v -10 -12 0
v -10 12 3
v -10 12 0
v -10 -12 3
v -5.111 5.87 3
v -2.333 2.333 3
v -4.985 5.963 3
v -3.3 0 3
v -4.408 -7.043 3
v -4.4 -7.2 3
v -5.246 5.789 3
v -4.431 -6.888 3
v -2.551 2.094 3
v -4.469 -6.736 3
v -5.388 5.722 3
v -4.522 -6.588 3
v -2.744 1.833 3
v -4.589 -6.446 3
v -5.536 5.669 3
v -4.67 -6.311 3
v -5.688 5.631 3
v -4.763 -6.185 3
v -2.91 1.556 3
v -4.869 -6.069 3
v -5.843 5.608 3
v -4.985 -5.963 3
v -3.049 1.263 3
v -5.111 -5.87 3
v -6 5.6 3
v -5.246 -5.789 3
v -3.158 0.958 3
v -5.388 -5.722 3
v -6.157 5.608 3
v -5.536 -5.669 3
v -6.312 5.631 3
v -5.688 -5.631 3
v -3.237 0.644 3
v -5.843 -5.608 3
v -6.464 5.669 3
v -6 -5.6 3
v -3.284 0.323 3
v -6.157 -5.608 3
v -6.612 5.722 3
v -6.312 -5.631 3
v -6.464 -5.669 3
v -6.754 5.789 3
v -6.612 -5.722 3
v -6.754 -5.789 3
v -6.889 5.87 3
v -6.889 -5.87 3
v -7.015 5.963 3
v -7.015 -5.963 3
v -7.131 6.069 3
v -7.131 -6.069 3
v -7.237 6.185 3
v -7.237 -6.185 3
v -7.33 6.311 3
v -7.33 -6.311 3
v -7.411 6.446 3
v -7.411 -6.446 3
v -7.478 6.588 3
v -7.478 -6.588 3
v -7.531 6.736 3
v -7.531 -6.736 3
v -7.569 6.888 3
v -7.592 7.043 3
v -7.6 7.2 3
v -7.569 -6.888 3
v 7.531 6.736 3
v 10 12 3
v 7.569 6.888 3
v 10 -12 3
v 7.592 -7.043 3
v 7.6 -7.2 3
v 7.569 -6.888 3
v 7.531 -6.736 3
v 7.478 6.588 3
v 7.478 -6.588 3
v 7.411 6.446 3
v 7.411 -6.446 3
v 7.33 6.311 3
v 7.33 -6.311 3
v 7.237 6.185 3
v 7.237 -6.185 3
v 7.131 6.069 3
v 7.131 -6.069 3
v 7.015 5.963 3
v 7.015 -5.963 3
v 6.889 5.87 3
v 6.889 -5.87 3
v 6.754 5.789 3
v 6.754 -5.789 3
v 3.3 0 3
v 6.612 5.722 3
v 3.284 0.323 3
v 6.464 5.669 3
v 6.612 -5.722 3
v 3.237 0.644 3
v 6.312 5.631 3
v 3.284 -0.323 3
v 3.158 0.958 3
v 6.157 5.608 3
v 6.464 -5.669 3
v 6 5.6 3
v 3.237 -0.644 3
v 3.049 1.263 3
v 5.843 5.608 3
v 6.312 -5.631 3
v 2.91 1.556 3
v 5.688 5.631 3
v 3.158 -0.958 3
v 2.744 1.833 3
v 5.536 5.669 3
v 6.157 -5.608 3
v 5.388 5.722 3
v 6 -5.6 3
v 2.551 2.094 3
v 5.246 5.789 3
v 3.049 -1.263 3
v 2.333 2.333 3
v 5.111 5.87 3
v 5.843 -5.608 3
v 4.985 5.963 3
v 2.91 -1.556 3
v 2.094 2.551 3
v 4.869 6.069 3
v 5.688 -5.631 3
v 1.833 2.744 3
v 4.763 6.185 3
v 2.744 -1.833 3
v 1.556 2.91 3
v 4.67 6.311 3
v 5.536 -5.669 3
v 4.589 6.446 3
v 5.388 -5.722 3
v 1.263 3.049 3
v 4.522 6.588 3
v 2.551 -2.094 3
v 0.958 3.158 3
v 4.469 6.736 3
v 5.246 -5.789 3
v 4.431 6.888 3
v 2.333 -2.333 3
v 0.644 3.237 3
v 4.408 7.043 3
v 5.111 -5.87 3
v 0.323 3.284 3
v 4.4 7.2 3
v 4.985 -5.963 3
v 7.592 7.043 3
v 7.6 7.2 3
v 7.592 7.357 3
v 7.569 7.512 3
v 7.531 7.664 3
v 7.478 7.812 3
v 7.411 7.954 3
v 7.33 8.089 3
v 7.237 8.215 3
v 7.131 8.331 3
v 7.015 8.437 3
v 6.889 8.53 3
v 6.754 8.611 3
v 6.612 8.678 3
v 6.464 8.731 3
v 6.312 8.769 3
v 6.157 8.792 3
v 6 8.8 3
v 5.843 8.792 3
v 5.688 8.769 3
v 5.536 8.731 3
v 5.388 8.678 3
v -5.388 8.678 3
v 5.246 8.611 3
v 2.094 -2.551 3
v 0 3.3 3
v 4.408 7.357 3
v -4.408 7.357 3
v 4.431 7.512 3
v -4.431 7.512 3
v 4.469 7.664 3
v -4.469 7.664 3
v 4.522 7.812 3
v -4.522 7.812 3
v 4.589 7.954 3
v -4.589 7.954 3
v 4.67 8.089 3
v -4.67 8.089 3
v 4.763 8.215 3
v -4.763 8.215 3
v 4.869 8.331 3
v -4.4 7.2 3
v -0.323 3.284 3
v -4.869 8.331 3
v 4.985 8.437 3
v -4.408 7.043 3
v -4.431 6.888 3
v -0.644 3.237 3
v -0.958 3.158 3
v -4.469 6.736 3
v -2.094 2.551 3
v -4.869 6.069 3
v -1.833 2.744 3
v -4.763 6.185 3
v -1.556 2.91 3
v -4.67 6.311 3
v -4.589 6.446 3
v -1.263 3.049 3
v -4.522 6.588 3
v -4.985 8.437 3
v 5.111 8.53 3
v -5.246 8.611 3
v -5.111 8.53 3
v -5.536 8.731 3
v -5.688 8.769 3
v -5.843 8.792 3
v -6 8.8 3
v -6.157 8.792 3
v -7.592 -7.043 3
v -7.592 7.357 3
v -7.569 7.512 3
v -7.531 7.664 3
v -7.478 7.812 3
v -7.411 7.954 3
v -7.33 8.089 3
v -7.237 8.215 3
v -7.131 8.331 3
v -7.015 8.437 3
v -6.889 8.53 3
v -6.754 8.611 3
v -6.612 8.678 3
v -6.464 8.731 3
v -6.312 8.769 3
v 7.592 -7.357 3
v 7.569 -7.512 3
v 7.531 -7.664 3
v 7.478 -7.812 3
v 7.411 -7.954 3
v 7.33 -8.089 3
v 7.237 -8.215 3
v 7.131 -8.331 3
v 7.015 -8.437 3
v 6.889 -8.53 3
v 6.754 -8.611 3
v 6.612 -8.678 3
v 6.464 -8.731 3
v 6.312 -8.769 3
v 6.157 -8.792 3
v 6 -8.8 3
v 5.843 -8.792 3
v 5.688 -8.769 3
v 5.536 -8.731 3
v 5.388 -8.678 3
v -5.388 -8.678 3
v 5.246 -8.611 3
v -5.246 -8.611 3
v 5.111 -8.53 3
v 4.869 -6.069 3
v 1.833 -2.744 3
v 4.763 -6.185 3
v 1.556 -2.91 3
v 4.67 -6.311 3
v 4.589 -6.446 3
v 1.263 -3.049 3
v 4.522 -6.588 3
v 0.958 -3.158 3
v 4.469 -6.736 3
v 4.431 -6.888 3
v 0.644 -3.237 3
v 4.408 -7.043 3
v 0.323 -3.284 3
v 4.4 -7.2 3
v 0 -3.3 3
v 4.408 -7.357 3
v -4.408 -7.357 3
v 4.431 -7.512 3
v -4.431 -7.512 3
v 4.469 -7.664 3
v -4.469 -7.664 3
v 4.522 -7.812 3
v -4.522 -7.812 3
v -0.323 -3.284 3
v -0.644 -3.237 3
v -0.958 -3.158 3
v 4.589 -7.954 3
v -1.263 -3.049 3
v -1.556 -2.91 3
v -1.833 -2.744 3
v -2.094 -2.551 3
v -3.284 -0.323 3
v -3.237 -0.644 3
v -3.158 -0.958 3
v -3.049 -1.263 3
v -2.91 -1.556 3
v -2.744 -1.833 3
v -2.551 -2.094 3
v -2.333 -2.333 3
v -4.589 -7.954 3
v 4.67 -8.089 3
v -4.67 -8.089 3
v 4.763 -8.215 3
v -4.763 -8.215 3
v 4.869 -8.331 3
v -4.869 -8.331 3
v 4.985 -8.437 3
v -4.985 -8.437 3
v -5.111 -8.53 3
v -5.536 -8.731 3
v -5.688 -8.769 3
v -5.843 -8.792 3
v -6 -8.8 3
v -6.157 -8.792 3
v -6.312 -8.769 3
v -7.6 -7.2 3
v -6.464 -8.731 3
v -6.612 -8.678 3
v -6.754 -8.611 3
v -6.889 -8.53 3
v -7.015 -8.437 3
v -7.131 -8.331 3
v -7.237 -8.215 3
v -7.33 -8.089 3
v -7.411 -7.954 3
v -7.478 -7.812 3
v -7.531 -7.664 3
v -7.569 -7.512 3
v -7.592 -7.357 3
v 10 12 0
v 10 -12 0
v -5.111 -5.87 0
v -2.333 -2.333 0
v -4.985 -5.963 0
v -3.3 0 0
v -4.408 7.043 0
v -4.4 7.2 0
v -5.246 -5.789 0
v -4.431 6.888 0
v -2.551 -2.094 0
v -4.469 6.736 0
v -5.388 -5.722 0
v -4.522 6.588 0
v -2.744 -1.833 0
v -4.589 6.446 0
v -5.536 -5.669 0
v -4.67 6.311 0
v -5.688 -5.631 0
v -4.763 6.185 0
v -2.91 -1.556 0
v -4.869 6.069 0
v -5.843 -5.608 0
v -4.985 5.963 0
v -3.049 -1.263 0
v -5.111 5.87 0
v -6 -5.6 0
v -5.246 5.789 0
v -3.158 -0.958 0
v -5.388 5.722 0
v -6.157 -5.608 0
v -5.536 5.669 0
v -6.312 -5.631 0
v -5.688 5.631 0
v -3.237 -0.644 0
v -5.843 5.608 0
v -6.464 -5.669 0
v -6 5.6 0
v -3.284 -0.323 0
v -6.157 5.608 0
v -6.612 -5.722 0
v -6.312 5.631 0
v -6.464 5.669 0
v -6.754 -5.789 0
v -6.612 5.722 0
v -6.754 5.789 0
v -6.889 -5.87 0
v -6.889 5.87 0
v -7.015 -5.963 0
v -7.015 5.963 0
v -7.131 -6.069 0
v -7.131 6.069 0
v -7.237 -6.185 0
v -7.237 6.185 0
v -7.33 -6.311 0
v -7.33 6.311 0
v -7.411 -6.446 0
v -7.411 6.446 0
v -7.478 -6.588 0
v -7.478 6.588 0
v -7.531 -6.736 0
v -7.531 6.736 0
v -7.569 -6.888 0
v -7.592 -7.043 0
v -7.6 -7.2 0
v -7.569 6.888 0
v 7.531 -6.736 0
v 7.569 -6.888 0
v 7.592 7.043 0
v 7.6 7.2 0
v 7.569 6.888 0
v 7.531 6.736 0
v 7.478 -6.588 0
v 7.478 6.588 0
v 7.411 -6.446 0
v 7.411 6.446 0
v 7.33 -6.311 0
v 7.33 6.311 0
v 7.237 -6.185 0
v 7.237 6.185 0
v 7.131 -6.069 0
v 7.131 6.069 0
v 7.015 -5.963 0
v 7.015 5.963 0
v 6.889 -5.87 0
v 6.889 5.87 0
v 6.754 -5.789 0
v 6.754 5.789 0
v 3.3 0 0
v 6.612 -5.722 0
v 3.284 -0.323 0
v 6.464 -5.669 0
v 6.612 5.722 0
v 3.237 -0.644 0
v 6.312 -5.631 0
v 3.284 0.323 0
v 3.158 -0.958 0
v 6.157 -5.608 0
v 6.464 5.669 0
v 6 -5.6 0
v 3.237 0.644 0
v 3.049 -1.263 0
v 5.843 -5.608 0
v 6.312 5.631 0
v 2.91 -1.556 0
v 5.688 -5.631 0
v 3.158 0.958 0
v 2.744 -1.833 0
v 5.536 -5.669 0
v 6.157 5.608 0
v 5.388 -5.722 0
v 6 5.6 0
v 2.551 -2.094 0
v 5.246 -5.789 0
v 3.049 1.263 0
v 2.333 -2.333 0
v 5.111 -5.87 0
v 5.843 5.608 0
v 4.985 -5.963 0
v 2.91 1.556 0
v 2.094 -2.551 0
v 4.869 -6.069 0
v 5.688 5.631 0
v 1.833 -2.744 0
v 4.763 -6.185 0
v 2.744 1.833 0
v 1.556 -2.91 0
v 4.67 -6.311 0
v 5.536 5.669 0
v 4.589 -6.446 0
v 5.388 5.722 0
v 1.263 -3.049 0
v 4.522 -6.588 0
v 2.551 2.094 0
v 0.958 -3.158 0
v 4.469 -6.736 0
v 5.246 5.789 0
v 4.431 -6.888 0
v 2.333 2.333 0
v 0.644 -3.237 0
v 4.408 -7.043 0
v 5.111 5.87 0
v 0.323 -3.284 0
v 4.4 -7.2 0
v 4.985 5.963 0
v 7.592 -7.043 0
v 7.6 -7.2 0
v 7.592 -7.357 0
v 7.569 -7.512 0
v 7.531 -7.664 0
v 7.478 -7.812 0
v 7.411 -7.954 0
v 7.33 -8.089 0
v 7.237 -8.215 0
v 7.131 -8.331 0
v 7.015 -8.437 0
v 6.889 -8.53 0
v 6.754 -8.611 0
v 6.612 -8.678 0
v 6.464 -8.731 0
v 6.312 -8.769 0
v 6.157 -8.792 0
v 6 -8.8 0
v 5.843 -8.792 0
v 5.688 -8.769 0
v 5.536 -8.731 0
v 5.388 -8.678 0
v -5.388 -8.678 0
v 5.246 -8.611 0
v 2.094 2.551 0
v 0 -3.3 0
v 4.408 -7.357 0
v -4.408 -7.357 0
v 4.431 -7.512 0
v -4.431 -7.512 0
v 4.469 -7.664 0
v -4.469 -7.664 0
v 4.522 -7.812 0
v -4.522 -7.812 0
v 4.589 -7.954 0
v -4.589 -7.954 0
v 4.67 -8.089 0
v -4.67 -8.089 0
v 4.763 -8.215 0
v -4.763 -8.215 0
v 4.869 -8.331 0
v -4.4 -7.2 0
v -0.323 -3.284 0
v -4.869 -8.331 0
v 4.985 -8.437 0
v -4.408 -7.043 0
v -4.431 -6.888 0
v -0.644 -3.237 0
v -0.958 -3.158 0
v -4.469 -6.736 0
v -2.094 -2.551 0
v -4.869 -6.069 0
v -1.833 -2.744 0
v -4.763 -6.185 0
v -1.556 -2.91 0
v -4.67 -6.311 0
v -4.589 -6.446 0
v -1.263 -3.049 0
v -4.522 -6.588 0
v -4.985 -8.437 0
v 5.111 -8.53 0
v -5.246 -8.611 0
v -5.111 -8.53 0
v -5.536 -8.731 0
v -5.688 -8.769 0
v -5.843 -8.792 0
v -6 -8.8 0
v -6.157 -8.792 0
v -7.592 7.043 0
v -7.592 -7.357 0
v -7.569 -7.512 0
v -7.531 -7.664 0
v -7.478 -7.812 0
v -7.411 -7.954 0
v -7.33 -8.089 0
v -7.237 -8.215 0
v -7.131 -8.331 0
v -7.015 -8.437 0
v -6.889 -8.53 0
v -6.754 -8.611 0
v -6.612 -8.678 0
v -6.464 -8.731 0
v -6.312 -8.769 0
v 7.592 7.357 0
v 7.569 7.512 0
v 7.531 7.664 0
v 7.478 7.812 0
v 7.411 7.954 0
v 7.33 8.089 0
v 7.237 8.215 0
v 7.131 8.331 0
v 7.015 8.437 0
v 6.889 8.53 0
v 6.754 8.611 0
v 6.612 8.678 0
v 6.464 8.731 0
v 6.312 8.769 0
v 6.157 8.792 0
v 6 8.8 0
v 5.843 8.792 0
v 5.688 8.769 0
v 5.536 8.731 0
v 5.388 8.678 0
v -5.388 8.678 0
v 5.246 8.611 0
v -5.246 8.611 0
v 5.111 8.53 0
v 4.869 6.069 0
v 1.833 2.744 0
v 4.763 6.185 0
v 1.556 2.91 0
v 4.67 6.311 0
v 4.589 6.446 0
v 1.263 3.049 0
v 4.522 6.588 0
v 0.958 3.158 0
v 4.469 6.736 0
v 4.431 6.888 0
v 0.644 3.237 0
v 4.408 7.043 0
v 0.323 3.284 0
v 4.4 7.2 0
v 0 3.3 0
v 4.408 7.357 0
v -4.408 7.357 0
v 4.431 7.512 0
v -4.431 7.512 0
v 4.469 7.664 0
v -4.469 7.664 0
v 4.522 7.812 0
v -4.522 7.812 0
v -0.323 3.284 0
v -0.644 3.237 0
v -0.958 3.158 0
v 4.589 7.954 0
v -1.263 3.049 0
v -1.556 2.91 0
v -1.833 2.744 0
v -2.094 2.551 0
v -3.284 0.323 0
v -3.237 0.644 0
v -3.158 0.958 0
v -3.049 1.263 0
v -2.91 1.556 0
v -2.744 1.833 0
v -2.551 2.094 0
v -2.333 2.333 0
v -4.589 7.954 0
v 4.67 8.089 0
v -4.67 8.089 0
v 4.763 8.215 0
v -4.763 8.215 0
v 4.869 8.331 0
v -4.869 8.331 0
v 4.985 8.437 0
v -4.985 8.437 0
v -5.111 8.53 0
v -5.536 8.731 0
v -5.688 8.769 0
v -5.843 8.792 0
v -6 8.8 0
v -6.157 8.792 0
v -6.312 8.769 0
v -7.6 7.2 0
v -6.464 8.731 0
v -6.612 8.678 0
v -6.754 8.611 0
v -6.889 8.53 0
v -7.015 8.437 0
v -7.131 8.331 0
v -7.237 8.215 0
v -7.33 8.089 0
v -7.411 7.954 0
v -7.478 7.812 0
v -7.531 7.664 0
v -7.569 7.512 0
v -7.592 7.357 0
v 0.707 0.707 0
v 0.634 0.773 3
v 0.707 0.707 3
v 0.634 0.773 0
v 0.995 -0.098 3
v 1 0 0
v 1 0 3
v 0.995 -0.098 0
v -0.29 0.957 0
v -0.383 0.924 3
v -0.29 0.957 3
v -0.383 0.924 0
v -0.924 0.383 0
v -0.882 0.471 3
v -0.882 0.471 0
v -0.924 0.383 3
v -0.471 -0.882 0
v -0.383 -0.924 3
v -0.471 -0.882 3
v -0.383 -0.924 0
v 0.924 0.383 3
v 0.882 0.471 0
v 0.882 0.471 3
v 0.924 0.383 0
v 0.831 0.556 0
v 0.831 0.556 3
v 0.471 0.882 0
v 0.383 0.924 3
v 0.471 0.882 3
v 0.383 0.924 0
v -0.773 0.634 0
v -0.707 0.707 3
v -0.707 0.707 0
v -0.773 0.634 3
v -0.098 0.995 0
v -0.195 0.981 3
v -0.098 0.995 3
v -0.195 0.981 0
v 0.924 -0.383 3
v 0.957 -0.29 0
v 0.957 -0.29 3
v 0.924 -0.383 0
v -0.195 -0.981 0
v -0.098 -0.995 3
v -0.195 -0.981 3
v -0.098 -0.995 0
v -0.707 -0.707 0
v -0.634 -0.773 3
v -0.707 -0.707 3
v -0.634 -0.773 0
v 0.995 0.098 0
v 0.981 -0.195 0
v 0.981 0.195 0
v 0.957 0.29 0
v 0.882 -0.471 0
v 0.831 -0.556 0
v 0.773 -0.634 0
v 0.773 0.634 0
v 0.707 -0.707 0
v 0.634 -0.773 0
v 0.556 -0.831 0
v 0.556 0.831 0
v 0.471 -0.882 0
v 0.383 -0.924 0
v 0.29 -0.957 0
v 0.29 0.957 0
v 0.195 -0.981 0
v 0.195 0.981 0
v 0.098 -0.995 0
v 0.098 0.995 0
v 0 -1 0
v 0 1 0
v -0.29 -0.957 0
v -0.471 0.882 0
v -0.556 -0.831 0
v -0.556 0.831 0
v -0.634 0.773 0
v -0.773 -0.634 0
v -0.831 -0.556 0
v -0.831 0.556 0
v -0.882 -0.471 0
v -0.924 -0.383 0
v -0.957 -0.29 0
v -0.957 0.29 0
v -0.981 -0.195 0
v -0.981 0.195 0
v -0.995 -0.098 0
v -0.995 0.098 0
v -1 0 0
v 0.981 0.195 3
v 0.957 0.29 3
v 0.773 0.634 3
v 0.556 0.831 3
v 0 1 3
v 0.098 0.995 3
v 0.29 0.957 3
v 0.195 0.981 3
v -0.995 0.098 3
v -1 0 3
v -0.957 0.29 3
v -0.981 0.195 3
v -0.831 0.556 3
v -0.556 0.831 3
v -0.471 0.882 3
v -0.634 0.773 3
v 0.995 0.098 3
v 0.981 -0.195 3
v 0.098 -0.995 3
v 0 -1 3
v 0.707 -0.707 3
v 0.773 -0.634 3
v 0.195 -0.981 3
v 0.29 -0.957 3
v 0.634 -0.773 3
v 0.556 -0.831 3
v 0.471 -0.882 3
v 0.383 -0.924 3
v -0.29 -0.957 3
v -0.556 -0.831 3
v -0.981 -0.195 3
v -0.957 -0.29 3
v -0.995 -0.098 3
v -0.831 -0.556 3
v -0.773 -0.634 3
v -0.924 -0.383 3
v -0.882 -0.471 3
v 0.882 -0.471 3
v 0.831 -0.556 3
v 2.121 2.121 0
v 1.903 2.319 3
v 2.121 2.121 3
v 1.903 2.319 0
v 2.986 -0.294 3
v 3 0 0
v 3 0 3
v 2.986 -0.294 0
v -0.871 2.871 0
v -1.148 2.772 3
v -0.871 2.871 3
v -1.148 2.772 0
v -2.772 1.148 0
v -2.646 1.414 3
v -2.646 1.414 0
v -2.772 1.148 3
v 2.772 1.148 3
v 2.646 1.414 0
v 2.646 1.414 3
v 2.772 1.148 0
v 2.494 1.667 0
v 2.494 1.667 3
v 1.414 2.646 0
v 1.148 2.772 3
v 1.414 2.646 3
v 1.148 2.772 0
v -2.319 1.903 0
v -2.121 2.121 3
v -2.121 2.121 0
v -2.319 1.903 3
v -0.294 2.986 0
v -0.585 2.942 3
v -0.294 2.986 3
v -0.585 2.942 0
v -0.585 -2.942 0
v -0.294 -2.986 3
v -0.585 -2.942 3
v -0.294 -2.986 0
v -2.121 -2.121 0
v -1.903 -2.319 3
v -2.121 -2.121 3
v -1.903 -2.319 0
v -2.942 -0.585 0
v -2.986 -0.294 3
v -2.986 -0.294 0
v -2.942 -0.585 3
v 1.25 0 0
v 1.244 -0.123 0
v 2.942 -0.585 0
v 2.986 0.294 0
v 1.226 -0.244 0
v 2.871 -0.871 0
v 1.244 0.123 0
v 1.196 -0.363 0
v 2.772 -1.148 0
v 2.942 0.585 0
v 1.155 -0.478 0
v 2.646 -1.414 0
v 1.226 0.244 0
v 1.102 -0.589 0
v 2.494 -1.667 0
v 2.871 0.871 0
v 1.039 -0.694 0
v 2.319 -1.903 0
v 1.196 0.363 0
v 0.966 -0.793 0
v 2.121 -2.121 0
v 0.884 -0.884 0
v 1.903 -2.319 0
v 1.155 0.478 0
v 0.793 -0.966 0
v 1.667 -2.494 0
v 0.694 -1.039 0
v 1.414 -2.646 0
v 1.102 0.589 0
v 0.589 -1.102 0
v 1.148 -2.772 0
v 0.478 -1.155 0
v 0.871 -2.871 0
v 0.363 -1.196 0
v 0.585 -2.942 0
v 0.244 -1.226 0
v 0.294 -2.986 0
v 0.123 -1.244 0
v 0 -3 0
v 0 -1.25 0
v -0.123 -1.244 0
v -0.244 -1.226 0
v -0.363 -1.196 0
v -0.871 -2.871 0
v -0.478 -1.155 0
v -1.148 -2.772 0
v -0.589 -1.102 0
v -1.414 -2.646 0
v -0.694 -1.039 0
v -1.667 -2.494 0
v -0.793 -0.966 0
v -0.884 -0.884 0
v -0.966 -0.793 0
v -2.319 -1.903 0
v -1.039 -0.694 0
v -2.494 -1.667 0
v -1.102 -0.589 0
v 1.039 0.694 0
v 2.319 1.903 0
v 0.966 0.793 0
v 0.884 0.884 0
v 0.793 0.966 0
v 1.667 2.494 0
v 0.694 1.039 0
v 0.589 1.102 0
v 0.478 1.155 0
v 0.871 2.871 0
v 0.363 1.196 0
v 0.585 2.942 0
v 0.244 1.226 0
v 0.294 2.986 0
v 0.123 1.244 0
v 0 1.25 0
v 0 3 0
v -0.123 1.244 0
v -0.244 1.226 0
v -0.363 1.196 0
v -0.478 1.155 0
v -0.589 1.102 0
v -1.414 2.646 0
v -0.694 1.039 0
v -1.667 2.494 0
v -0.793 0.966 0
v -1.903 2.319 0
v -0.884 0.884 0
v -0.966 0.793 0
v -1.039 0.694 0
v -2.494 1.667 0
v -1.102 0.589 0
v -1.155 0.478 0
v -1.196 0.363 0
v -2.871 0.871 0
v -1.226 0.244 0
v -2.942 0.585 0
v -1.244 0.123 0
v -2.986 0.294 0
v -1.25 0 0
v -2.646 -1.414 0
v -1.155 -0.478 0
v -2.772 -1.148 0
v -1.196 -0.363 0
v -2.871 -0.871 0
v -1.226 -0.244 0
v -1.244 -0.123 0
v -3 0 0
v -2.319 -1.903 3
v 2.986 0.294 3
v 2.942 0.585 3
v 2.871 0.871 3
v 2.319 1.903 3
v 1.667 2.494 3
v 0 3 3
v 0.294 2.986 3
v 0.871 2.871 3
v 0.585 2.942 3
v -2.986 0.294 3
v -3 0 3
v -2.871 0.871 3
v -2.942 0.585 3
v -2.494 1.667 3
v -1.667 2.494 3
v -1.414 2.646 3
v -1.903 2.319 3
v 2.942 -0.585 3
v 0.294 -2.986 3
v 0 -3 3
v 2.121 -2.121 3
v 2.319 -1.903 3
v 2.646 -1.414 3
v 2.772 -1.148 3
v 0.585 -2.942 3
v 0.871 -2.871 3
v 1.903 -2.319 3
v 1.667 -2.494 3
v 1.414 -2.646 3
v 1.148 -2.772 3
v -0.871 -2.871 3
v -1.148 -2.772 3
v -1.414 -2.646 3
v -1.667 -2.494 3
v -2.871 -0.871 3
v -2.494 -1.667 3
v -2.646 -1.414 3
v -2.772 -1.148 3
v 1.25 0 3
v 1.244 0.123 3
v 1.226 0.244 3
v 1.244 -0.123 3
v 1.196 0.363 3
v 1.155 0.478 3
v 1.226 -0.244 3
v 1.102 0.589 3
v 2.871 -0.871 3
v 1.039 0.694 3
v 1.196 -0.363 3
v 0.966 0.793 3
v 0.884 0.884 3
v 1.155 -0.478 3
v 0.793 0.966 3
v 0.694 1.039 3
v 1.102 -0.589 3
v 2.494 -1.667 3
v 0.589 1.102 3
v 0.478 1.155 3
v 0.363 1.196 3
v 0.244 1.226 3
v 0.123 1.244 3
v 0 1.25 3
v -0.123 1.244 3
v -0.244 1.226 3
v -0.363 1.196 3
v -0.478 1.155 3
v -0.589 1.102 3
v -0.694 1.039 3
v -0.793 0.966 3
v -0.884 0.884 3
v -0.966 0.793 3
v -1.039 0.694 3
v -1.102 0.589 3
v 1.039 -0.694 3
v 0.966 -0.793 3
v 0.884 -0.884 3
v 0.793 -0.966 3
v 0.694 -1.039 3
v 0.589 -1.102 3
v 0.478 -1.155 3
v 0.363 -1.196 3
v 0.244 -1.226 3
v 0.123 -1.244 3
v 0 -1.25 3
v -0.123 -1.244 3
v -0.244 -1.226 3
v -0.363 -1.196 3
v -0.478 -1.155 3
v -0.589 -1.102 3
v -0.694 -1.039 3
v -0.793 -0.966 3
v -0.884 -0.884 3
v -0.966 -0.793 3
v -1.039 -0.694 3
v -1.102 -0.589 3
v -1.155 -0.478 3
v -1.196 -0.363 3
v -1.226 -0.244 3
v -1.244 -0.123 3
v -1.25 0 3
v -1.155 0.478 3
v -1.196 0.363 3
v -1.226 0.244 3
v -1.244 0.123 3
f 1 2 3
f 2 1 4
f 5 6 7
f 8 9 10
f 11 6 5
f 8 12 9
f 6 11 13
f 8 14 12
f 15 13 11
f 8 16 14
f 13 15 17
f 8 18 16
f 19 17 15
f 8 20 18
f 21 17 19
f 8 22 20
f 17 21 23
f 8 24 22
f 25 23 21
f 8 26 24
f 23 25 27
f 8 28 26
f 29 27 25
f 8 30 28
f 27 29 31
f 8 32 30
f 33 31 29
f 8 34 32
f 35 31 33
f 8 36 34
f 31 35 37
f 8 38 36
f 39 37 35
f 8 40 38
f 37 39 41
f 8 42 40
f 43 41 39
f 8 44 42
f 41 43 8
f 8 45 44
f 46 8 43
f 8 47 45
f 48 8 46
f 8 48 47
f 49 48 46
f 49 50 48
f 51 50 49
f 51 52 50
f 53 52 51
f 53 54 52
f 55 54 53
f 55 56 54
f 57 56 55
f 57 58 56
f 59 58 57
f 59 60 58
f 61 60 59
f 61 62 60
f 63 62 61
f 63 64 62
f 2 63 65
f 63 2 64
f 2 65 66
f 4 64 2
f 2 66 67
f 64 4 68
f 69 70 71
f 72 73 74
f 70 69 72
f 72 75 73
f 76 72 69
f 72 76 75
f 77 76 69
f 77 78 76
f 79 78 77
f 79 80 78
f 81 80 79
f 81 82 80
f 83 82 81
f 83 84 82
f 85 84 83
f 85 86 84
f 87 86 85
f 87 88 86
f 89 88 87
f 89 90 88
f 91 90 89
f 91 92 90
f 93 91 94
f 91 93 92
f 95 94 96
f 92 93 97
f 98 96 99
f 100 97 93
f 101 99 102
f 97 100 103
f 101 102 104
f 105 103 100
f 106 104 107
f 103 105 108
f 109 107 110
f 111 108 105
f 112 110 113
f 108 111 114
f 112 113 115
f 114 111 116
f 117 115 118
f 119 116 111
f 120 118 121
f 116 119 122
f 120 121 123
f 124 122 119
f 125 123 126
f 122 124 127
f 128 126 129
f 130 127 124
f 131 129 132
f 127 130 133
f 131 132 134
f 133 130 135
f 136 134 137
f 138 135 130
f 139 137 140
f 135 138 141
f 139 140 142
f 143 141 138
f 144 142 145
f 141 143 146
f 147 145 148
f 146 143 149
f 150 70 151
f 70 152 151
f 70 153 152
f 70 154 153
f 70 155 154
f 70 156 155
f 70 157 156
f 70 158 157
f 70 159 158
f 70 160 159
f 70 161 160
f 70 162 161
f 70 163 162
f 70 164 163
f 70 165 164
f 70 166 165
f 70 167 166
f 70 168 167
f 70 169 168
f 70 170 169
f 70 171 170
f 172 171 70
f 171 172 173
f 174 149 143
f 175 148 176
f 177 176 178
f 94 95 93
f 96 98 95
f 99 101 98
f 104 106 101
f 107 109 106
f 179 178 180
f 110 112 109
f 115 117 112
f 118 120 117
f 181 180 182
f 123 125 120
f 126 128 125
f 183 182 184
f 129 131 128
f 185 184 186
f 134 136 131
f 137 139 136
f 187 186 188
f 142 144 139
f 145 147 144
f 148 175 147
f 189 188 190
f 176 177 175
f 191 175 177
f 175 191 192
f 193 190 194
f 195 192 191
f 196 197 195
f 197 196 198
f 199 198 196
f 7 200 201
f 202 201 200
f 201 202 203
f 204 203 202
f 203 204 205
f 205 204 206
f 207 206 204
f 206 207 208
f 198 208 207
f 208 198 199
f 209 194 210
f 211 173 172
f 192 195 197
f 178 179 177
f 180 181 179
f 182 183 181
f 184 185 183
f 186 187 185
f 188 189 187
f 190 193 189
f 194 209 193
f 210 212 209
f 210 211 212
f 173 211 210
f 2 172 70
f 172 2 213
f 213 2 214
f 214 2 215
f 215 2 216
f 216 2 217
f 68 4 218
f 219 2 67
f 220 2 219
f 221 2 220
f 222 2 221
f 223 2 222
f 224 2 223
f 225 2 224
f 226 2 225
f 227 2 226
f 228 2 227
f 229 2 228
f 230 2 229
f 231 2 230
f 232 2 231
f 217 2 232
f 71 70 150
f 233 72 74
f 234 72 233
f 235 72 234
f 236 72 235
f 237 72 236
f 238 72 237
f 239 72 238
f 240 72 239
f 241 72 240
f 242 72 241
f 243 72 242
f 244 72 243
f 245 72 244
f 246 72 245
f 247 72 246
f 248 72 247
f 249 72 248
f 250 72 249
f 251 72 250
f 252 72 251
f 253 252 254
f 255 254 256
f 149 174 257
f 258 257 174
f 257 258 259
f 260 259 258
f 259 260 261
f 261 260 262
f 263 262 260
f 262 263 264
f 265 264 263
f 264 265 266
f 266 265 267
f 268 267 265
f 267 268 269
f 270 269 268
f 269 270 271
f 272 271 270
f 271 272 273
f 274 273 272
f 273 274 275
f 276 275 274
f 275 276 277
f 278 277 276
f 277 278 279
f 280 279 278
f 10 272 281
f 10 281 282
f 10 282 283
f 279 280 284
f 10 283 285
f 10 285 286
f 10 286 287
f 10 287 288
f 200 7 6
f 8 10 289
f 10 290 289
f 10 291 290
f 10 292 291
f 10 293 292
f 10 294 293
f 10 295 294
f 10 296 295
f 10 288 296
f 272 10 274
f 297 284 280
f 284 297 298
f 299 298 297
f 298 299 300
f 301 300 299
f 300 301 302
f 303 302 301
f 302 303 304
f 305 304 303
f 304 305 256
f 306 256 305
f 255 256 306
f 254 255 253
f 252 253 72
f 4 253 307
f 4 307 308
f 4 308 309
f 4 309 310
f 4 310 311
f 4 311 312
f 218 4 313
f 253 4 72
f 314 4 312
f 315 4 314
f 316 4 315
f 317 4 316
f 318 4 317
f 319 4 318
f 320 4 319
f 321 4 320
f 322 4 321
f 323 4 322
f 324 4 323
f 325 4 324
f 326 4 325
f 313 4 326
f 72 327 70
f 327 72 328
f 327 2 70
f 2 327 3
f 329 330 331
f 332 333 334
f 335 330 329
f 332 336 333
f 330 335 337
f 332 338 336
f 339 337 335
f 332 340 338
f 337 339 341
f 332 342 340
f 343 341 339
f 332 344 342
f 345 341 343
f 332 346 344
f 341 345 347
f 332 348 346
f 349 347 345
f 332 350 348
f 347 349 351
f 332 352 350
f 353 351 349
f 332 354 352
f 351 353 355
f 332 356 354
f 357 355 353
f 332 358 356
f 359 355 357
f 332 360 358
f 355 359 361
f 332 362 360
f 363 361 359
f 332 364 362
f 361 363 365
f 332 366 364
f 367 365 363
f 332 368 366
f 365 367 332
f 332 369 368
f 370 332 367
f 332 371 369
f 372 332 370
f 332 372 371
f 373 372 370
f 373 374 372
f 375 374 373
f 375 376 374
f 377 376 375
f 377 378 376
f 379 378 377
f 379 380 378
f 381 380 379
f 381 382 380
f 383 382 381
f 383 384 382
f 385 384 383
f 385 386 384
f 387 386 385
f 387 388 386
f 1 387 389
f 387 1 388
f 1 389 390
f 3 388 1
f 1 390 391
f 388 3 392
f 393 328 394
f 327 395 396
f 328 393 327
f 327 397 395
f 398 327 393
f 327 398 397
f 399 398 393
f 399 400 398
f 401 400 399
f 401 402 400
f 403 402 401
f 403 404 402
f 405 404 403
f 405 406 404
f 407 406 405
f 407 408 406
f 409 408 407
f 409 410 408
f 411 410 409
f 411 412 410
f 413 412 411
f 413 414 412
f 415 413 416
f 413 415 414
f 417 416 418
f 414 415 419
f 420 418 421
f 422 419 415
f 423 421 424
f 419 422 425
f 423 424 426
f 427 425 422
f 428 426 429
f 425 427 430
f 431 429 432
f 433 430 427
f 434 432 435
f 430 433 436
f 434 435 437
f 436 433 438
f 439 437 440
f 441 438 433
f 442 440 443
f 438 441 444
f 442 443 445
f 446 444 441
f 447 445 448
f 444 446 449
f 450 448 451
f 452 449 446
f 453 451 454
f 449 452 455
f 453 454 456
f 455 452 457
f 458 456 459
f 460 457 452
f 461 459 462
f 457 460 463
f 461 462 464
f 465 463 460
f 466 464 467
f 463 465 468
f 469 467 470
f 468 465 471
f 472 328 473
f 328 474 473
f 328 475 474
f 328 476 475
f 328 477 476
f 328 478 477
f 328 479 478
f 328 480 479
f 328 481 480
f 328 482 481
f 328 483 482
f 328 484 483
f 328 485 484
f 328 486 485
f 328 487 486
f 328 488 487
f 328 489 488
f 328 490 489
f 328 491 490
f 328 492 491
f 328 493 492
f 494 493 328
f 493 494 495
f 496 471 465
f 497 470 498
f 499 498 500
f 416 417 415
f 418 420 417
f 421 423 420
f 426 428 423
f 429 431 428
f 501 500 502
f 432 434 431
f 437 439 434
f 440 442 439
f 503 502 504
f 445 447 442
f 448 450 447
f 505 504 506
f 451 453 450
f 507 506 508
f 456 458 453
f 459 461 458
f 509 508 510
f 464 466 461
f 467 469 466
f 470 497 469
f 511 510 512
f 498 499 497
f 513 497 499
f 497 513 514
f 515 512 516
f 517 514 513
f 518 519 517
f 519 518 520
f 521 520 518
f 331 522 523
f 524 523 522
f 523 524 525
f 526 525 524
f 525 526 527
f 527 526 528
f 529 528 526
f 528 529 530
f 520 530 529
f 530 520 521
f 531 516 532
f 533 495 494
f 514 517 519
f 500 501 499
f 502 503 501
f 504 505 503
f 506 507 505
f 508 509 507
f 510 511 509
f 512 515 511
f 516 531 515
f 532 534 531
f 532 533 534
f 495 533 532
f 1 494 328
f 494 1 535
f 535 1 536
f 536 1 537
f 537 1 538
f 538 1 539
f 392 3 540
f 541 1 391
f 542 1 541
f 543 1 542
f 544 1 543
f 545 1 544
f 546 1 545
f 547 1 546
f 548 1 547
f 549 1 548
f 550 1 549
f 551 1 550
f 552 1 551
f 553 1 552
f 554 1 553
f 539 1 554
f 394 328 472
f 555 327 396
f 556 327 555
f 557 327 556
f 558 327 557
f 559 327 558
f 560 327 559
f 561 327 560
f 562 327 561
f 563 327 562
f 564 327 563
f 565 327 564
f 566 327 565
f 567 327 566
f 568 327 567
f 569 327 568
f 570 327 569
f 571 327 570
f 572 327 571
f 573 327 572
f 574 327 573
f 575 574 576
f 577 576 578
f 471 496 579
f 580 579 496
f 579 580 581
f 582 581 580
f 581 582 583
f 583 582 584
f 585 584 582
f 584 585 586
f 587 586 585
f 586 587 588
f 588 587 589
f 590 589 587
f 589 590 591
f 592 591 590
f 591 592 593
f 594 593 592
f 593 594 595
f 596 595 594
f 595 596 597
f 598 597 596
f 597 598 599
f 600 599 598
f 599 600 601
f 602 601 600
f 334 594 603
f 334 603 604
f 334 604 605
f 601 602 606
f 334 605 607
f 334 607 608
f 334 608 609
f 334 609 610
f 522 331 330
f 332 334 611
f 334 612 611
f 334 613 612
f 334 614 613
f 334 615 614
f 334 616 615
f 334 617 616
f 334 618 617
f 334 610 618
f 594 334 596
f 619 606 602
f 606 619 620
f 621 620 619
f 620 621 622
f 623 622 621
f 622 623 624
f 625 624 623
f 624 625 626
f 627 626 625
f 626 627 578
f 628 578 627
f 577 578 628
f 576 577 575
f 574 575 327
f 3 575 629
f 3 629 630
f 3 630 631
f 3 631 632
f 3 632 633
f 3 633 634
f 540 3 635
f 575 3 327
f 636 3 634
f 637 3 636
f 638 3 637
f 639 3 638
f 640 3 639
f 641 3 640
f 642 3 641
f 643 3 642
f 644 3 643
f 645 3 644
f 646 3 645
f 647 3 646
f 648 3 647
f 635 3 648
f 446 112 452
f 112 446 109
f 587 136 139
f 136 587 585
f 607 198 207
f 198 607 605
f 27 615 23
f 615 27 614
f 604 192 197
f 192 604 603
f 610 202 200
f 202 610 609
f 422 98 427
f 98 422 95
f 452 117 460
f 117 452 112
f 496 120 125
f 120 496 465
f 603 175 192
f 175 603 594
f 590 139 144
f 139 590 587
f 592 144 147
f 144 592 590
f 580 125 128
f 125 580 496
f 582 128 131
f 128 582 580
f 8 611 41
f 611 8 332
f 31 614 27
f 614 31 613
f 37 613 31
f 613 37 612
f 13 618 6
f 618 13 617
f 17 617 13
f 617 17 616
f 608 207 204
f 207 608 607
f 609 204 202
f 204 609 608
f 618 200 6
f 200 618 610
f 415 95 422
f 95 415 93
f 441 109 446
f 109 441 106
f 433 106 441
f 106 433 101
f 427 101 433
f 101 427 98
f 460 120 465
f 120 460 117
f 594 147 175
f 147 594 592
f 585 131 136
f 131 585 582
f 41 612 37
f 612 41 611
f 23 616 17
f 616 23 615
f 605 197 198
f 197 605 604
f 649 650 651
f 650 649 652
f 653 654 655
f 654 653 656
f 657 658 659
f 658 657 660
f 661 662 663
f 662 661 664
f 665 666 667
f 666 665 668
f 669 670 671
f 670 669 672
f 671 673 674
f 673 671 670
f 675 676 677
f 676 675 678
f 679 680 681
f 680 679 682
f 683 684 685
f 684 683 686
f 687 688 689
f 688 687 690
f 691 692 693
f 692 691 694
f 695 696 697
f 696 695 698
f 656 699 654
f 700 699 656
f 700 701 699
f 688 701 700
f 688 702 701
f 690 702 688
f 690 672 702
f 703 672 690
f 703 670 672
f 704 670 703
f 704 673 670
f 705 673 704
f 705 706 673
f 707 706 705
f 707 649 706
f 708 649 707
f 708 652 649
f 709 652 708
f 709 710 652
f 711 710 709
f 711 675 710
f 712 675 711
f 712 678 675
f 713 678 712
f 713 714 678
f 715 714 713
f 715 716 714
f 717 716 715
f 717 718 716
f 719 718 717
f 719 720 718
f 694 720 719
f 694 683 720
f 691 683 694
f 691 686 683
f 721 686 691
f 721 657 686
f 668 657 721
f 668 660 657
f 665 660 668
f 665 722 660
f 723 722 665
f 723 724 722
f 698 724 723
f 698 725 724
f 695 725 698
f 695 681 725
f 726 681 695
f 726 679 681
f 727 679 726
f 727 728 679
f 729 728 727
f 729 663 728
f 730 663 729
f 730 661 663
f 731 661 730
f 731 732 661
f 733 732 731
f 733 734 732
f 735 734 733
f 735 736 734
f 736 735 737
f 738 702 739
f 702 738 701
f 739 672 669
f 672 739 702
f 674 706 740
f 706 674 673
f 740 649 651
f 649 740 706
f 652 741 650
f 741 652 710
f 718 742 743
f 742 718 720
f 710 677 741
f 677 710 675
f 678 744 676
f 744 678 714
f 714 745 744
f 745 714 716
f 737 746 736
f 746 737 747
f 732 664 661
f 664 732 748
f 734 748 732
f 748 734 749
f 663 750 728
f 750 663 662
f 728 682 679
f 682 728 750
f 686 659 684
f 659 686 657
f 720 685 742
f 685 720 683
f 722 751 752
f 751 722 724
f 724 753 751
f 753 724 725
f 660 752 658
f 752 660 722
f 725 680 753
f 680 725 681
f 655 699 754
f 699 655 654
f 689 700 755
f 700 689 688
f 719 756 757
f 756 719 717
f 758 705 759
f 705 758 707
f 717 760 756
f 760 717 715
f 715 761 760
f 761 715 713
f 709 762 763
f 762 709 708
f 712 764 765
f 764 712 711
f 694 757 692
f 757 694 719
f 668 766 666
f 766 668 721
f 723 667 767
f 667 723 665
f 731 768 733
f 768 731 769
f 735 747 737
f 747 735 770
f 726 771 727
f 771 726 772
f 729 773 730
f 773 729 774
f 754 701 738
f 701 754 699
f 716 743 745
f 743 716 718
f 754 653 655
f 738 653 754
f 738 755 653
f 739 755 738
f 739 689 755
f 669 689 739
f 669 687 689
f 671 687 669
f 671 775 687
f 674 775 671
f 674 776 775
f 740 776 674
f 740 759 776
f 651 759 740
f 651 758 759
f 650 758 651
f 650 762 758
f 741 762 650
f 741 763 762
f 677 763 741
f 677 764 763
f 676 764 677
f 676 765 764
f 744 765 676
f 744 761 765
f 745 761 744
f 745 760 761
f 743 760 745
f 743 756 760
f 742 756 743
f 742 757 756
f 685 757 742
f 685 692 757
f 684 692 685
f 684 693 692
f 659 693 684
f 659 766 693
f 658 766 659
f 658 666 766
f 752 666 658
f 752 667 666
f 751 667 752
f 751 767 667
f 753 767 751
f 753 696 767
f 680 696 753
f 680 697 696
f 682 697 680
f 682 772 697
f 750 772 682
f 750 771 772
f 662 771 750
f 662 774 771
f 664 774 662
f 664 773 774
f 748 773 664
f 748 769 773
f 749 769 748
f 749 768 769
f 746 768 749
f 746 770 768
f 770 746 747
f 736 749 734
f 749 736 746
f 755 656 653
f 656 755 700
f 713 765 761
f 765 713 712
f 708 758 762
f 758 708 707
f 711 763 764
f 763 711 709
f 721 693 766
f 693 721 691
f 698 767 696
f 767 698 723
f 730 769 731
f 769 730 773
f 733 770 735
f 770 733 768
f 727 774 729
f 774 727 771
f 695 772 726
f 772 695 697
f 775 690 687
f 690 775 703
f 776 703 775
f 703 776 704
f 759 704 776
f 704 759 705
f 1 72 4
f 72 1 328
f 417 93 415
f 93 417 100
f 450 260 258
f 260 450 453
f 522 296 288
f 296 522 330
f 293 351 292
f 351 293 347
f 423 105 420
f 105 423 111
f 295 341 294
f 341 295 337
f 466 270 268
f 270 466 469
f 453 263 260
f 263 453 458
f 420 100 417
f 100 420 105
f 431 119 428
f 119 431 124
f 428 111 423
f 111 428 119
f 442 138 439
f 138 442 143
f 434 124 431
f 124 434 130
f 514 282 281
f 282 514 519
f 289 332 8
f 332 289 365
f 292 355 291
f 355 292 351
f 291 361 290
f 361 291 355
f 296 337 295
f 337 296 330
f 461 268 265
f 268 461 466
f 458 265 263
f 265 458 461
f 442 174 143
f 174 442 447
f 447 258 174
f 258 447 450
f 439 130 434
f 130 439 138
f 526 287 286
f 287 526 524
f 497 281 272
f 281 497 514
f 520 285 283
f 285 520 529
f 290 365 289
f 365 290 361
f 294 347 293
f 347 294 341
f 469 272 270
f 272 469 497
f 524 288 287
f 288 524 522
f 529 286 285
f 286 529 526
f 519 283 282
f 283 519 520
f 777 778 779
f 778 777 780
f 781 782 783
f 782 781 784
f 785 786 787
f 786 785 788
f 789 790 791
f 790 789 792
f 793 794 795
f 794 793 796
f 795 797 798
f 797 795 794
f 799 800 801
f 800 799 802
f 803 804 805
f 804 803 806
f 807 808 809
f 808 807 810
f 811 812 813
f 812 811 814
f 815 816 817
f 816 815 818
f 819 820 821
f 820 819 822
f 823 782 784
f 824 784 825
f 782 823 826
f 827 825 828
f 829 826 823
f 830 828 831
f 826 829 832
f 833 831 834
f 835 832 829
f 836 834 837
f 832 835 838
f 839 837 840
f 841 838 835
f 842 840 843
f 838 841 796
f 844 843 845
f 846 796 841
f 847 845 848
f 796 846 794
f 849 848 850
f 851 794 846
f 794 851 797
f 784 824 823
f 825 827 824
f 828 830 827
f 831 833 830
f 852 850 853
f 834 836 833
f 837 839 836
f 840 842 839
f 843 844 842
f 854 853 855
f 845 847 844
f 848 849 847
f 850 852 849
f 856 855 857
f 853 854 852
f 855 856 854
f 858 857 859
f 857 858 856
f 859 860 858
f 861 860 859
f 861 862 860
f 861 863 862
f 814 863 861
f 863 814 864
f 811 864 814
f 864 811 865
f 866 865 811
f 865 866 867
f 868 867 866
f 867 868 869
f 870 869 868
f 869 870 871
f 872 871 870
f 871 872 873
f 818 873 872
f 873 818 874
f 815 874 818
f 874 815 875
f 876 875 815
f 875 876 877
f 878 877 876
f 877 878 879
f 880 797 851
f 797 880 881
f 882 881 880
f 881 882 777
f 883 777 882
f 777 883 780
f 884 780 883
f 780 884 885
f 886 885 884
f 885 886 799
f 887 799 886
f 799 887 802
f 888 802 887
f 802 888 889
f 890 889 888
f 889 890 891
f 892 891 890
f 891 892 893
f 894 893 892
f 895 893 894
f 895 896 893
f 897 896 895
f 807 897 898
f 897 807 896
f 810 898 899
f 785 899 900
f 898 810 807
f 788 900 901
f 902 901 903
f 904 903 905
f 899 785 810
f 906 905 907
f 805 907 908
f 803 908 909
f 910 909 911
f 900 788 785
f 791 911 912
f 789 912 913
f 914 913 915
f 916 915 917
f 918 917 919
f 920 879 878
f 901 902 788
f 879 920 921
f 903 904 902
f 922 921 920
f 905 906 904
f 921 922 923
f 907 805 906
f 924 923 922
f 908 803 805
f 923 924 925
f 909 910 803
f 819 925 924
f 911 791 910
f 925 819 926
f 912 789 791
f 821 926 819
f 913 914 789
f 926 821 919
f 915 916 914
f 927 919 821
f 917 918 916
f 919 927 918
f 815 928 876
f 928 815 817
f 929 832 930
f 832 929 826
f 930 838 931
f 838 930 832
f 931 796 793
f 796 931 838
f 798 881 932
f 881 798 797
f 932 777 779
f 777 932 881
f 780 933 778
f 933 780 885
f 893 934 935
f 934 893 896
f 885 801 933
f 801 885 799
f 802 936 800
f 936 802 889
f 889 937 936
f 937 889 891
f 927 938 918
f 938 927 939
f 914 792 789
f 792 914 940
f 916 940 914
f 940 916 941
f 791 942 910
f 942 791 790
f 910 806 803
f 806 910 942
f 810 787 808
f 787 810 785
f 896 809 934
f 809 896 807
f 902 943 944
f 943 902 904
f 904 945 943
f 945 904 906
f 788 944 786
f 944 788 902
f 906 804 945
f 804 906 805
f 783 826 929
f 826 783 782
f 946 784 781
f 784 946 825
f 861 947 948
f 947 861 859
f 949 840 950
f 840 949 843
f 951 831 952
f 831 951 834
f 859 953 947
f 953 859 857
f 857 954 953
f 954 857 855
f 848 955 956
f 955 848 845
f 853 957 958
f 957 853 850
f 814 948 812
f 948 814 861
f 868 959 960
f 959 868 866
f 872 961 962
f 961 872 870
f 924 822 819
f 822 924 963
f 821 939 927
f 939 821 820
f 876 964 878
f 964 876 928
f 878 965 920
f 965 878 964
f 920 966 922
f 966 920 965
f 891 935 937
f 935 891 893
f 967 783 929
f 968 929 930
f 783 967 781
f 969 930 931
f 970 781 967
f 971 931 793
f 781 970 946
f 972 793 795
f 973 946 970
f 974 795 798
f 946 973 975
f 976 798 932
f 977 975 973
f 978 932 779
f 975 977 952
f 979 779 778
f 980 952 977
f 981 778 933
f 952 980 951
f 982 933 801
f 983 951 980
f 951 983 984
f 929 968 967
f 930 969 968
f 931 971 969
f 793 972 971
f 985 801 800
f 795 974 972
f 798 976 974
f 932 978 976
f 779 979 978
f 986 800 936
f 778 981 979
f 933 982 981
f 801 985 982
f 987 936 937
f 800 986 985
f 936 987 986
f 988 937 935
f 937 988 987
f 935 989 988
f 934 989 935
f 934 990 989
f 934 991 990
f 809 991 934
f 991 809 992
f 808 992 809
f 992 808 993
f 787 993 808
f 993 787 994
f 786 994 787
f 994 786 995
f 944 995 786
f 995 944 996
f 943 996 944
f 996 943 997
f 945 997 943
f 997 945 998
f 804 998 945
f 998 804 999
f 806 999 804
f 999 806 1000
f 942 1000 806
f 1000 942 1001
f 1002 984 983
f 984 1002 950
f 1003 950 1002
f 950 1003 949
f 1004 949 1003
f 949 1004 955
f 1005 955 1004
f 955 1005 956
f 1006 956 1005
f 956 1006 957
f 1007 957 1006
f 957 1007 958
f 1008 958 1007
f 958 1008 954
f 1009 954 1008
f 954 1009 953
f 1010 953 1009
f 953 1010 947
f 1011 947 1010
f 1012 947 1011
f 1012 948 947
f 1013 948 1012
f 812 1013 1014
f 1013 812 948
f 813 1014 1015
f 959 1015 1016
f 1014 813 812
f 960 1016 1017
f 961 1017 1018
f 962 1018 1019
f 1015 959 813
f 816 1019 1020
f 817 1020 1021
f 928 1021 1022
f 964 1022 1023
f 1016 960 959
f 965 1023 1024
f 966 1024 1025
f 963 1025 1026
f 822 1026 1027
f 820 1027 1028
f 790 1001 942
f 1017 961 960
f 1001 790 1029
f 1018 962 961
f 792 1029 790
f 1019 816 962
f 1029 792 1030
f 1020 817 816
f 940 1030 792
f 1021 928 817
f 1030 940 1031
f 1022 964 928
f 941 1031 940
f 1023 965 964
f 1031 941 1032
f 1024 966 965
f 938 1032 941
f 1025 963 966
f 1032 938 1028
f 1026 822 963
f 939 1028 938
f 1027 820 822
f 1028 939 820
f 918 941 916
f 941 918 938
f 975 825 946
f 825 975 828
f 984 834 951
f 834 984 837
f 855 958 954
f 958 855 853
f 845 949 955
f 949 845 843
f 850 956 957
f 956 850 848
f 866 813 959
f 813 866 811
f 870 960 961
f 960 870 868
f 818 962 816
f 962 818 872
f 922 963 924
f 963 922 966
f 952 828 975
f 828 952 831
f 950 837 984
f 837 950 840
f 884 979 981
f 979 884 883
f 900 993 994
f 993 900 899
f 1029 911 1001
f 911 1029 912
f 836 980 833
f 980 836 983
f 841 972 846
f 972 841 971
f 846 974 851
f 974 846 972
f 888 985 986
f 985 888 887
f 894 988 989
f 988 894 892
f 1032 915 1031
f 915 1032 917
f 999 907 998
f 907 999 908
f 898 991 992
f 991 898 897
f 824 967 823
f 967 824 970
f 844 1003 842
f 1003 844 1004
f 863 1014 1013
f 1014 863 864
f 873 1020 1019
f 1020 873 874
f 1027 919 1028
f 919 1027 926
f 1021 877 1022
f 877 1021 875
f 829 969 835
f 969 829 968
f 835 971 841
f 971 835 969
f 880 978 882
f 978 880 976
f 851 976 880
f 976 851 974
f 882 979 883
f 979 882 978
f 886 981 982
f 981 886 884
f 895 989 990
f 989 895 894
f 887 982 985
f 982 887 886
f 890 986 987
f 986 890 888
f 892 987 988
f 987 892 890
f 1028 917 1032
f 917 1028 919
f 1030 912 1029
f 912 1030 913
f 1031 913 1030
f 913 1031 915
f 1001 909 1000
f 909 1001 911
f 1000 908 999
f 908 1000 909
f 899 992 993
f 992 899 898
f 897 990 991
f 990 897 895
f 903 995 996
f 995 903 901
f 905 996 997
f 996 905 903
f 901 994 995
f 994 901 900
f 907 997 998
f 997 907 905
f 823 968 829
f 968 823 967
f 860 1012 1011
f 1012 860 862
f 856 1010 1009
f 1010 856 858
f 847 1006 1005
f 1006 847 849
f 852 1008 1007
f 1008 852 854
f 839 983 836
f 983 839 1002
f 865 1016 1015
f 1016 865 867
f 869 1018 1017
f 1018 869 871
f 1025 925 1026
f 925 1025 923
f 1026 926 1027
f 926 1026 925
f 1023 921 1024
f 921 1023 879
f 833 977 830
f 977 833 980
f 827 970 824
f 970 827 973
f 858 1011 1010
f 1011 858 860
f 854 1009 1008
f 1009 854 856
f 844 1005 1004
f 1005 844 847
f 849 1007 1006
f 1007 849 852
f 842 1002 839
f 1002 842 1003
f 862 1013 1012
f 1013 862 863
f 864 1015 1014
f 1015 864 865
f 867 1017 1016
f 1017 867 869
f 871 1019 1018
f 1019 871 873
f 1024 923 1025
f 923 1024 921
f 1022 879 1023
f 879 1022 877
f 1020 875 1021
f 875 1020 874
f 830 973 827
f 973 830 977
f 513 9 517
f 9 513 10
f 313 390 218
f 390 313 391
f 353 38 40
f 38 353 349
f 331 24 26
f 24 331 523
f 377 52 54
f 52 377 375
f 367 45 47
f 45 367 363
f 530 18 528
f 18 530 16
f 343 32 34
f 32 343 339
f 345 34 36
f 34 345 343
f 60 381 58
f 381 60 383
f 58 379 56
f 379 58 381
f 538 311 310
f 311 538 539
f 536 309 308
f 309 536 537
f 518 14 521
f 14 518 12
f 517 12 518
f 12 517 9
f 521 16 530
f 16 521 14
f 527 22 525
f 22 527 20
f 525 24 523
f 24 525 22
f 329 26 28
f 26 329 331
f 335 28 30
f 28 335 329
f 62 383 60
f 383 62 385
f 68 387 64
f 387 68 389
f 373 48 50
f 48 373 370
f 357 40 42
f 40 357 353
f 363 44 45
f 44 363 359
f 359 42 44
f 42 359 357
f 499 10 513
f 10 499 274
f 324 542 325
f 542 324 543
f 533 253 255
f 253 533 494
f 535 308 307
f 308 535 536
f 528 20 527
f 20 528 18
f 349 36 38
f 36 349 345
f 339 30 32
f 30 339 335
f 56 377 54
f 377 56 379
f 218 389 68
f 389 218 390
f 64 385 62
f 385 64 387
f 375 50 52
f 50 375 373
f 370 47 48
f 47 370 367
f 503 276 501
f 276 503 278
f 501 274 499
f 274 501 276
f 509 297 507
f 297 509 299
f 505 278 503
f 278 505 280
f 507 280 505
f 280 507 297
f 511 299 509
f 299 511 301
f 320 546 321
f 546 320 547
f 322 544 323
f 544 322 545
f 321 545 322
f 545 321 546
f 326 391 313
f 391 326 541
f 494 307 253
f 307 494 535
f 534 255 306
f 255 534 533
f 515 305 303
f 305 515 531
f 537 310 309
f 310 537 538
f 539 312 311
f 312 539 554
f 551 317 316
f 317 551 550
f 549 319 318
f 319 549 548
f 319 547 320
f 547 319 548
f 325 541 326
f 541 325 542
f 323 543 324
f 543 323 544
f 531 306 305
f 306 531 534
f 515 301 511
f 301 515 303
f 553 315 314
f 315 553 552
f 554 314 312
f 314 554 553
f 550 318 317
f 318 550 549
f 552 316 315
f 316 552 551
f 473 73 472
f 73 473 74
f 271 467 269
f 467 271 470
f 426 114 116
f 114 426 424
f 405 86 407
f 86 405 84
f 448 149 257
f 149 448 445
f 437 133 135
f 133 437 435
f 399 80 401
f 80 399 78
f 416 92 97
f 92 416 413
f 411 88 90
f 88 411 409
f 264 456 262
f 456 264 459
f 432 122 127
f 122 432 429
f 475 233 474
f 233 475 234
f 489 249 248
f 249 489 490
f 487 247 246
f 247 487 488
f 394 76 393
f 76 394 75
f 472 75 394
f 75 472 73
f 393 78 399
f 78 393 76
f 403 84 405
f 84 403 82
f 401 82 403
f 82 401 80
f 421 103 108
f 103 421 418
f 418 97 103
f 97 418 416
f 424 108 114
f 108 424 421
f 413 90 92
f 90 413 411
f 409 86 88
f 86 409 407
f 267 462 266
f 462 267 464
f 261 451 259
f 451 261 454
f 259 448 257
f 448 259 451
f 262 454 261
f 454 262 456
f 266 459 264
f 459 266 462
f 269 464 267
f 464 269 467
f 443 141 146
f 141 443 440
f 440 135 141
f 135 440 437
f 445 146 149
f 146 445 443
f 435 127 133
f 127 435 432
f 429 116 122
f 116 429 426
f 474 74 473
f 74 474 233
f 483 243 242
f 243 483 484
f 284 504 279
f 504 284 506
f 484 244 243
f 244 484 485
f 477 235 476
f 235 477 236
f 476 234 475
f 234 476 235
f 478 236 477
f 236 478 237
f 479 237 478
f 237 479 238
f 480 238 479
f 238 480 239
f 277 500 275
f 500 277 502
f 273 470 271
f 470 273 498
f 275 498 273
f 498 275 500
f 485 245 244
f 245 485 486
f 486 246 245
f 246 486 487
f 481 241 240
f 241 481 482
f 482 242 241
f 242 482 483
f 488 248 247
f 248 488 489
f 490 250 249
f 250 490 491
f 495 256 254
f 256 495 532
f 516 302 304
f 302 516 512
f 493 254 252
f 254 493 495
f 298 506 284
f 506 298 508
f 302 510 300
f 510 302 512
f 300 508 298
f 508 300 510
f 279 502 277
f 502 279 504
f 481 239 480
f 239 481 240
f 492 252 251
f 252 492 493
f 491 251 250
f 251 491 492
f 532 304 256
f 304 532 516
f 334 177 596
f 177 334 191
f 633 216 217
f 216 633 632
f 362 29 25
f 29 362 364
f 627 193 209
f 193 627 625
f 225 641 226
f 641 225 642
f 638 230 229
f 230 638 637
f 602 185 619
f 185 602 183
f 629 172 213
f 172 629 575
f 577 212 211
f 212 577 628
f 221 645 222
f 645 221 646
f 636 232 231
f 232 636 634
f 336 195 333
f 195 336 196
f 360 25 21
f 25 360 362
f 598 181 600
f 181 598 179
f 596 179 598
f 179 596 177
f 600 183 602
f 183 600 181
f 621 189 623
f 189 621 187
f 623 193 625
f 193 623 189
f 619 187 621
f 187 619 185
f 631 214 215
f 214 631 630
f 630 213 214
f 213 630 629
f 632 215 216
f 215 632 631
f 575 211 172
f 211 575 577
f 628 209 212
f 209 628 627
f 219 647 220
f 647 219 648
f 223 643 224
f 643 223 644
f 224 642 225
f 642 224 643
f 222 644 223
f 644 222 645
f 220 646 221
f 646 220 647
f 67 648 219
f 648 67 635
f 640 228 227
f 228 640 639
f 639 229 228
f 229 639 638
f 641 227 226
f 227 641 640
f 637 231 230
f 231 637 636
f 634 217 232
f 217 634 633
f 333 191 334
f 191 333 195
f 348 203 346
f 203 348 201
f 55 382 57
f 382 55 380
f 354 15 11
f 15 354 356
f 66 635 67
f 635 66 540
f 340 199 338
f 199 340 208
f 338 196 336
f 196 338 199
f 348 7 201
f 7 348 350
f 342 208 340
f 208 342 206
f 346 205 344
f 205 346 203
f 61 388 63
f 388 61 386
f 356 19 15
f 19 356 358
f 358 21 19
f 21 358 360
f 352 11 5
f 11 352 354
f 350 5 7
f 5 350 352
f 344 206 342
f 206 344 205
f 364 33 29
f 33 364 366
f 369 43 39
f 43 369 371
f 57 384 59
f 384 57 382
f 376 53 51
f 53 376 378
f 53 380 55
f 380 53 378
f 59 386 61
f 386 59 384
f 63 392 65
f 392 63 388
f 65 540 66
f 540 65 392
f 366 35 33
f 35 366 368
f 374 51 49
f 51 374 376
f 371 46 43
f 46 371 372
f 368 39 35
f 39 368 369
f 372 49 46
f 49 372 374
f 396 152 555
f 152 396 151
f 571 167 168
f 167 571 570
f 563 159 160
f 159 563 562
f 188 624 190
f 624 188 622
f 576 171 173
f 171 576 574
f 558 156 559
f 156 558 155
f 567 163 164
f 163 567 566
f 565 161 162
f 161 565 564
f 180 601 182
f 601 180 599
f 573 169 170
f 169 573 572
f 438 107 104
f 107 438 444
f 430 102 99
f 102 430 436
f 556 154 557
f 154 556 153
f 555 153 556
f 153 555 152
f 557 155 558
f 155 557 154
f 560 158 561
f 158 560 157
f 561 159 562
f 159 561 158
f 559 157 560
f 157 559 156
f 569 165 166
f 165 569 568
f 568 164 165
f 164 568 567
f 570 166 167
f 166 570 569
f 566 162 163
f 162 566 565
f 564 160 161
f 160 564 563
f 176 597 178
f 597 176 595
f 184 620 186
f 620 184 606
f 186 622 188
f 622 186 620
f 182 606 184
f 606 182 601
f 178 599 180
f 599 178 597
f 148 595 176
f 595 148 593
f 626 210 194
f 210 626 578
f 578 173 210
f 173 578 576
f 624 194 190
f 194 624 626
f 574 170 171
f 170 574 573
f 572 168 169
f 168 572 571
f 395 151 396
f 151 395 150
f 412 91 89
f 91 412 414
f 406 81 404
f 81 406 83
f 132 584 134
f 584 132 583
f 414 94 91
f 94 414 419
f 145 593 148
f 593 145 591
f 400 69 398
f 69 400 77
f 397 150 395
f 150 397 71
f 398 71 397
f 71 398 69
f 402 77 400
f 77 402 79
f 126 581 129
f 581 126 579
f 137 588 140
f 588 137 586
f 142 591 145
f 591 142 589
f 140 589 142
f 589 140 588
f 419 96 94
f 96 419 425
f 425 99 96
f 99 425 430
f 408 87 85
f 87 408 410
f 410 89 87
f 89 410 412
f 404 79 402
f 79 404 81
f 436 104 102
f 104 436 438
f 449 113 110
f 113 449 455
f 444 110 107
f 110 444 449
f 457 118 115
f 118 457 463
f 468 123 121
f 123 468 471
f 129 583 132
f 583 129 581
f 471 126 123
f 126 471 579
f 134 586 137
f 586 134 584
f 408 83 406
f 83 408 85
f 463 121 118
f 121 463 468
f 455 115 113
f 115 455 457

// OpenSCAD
//
// Simple 20mm-wide box hinge for 3mm walls
// - Print-in-place, with integrated pin
// - Designed for M3 mounting screws
// - For 3mm wall thickness
//

$fn = 64;

// =================== Parameters ===================
leaf_thickness     = 3;      // matches 3mm wall
hinge_width        = 20;     // total hinge width along X
leaf_depth         = 12;     // how far each leaf extends from hinge axis along Y

knuckle_diameter   = 6;      // outer diameter of knuckles
pin_diameter       = 2;      // internal pin diameter (fits 1.75mm filament if you drill it out)
clearance          = 0.25;   // radial clearance between pin and rotating knuckle (print tolerance)
plate_clearance    = 0.30;   // clearance between leaves around hinge axis (for rotation)

center_len         = 6;      // length of center knuckle segment along X
center_gap         = 0.30;   // axial gap between center & outer knuckles along X
edge_clear         = 0.40;   // nominal free margin from knuckles to the hinge outer edge

// Mounting holes (M3)
hole_diameter      = 3.2;    // clearance for M3 screw
hole_spacing       = 12;     // spacing between two holes on each leaf, along X
hole_offset_factor = 0.60;   // fraction of leaf_depth for hole position along Y

// =================== Derived values ===================
knuckle_r = knuckle_diameter / 2;
pin_r     = pin_diameter / 2;
hole_r    = hole_diameter / 2;

// Outer knuckle length so everything fits into hinge_width
outer_len = (hinge_width - 2*edge_clear - center_len - 2*center_gap) / 2;

// X-offset of outer knuckles from center
x_outer   = center_len/2 + center_gap/2 + outer_len/2;

// Y offset of mounting holes on each leaf
hole_offset_y = leaf_depth * hole_offset_factor;


// =================== Main assembly ===================
hinge();

module hinge() {
    difference() {
        union() {
            top_leaf();      // lid side
            bottom_leaf();   // box side
        }
        mounting_holes();    // through-holes for M3 screws
    }
}


// =================== Leaf definitions ===================

// Top (Y > 0) leaf with integrated pin & two outer knuckles
module top_leaf() {
    union() {
        // Top plate with circular relief at the hinge axis
        difference() {
            plate_top();
            relief_cut();
        }

        // Pin + two outer knuckles
        pin_and_outer_knuckles();
    }
}

// Bottom (Y < 0) leaf with single center knuckle
module bottom_leaf() {
    union() {
        // Bottom plate with circular relief at the hinge axis
        difference() {
            plate_bottom();
            relief_cut();
        }

        // Center knuckle with clearance around the pin
        inner_center_knuckle();
    }
}


// =================== Geometry building blocks ===================

module plate_top() {
    // Rectangular plate, top side (Y >= 0)
    translate([-hinge_width/2, 0, 0])
        cube([hinge_width, leaf_depth, leaf_thickness], center = false);
}

module plate_bottom() {
    // Rectangular plate, bottom side (Y <= 0)
    translate([-hinge_width/2, -leaf_depth, 0])
        cube([hinge_width, leaf_depth, leaf_thickness], center = false);
}

// Circular relief cut in the plates around the hinge axis
module relief_cut() {
    translate([0, 0, -0.1])
        cylinder(h = leaf_thickness + 0.2,
                 r = knuckle_r + plate_clearance,
                 center = false);
}

// Integrated pin + two outer knuckles (attached to top leaf)
module pin_and_outer_knuckles() {
    // Central pin
    translate([0, 0, 0])
        cylinder(h = leaf_thickness, r = pin_r, center = false);

    // Left outer knuckle segment
    knuckle_segment(x_center = -x_outer,
                    len      = outer_len,
                    r_outer  = knuckle_r);

    // Right outer knuckle segment
    knuckle_segment(x_center =  x_outer,
                    len      = outer_len,
                    r_outer  = knuckle_r);
}

// Inner center knuckle (attached to bottom leaf, rotating on pin)
module inner_center_knuckle() {
    difference() {
        // Solid center knuckle segment
        knuckle_segment(x_center = 0,
                        len      = center_len,
                        r_outer  = knuckle_r);

        // Bore for pin + clearance (for rotation)
        translate([0, 0, -0.1])
            cylinder(h = leaf_thickness + 0.2,
                     r = pin_r + clearance,
                     center = false);
    }
}

// Knuckle segment along X, cut from a full cylinder
module knuckle_segment(x_center, len, r_outer) {
    intersection() {
        // Full cylinder around Z axis
        translate([0, 0, 0])
            cylinder(h = leaf_thickness, r = r_outer, center = false);

        // Limiting block to define length along X
        translate([x_center - len/2, -r_outer - 1, -0.1])
            cube([len, 2*(r_outer + 1), leaf_thickness + 0.2], center = false);
    }
}

// Through-holes for mounting screws (M3)
module mounting_holes() {
    for (leaf_sign = [-1, 1])      // -1 = bottom, +1 = top
        for (xpos = [-hole_spacing/2, hole_spacing/2])
            translate([xpos,
                       leaf_sign * hole_offset_y,
                       -1])
                cylinder(h = leaf_thickness + 2,
                         r = hole_r,
                         center = false);
}
